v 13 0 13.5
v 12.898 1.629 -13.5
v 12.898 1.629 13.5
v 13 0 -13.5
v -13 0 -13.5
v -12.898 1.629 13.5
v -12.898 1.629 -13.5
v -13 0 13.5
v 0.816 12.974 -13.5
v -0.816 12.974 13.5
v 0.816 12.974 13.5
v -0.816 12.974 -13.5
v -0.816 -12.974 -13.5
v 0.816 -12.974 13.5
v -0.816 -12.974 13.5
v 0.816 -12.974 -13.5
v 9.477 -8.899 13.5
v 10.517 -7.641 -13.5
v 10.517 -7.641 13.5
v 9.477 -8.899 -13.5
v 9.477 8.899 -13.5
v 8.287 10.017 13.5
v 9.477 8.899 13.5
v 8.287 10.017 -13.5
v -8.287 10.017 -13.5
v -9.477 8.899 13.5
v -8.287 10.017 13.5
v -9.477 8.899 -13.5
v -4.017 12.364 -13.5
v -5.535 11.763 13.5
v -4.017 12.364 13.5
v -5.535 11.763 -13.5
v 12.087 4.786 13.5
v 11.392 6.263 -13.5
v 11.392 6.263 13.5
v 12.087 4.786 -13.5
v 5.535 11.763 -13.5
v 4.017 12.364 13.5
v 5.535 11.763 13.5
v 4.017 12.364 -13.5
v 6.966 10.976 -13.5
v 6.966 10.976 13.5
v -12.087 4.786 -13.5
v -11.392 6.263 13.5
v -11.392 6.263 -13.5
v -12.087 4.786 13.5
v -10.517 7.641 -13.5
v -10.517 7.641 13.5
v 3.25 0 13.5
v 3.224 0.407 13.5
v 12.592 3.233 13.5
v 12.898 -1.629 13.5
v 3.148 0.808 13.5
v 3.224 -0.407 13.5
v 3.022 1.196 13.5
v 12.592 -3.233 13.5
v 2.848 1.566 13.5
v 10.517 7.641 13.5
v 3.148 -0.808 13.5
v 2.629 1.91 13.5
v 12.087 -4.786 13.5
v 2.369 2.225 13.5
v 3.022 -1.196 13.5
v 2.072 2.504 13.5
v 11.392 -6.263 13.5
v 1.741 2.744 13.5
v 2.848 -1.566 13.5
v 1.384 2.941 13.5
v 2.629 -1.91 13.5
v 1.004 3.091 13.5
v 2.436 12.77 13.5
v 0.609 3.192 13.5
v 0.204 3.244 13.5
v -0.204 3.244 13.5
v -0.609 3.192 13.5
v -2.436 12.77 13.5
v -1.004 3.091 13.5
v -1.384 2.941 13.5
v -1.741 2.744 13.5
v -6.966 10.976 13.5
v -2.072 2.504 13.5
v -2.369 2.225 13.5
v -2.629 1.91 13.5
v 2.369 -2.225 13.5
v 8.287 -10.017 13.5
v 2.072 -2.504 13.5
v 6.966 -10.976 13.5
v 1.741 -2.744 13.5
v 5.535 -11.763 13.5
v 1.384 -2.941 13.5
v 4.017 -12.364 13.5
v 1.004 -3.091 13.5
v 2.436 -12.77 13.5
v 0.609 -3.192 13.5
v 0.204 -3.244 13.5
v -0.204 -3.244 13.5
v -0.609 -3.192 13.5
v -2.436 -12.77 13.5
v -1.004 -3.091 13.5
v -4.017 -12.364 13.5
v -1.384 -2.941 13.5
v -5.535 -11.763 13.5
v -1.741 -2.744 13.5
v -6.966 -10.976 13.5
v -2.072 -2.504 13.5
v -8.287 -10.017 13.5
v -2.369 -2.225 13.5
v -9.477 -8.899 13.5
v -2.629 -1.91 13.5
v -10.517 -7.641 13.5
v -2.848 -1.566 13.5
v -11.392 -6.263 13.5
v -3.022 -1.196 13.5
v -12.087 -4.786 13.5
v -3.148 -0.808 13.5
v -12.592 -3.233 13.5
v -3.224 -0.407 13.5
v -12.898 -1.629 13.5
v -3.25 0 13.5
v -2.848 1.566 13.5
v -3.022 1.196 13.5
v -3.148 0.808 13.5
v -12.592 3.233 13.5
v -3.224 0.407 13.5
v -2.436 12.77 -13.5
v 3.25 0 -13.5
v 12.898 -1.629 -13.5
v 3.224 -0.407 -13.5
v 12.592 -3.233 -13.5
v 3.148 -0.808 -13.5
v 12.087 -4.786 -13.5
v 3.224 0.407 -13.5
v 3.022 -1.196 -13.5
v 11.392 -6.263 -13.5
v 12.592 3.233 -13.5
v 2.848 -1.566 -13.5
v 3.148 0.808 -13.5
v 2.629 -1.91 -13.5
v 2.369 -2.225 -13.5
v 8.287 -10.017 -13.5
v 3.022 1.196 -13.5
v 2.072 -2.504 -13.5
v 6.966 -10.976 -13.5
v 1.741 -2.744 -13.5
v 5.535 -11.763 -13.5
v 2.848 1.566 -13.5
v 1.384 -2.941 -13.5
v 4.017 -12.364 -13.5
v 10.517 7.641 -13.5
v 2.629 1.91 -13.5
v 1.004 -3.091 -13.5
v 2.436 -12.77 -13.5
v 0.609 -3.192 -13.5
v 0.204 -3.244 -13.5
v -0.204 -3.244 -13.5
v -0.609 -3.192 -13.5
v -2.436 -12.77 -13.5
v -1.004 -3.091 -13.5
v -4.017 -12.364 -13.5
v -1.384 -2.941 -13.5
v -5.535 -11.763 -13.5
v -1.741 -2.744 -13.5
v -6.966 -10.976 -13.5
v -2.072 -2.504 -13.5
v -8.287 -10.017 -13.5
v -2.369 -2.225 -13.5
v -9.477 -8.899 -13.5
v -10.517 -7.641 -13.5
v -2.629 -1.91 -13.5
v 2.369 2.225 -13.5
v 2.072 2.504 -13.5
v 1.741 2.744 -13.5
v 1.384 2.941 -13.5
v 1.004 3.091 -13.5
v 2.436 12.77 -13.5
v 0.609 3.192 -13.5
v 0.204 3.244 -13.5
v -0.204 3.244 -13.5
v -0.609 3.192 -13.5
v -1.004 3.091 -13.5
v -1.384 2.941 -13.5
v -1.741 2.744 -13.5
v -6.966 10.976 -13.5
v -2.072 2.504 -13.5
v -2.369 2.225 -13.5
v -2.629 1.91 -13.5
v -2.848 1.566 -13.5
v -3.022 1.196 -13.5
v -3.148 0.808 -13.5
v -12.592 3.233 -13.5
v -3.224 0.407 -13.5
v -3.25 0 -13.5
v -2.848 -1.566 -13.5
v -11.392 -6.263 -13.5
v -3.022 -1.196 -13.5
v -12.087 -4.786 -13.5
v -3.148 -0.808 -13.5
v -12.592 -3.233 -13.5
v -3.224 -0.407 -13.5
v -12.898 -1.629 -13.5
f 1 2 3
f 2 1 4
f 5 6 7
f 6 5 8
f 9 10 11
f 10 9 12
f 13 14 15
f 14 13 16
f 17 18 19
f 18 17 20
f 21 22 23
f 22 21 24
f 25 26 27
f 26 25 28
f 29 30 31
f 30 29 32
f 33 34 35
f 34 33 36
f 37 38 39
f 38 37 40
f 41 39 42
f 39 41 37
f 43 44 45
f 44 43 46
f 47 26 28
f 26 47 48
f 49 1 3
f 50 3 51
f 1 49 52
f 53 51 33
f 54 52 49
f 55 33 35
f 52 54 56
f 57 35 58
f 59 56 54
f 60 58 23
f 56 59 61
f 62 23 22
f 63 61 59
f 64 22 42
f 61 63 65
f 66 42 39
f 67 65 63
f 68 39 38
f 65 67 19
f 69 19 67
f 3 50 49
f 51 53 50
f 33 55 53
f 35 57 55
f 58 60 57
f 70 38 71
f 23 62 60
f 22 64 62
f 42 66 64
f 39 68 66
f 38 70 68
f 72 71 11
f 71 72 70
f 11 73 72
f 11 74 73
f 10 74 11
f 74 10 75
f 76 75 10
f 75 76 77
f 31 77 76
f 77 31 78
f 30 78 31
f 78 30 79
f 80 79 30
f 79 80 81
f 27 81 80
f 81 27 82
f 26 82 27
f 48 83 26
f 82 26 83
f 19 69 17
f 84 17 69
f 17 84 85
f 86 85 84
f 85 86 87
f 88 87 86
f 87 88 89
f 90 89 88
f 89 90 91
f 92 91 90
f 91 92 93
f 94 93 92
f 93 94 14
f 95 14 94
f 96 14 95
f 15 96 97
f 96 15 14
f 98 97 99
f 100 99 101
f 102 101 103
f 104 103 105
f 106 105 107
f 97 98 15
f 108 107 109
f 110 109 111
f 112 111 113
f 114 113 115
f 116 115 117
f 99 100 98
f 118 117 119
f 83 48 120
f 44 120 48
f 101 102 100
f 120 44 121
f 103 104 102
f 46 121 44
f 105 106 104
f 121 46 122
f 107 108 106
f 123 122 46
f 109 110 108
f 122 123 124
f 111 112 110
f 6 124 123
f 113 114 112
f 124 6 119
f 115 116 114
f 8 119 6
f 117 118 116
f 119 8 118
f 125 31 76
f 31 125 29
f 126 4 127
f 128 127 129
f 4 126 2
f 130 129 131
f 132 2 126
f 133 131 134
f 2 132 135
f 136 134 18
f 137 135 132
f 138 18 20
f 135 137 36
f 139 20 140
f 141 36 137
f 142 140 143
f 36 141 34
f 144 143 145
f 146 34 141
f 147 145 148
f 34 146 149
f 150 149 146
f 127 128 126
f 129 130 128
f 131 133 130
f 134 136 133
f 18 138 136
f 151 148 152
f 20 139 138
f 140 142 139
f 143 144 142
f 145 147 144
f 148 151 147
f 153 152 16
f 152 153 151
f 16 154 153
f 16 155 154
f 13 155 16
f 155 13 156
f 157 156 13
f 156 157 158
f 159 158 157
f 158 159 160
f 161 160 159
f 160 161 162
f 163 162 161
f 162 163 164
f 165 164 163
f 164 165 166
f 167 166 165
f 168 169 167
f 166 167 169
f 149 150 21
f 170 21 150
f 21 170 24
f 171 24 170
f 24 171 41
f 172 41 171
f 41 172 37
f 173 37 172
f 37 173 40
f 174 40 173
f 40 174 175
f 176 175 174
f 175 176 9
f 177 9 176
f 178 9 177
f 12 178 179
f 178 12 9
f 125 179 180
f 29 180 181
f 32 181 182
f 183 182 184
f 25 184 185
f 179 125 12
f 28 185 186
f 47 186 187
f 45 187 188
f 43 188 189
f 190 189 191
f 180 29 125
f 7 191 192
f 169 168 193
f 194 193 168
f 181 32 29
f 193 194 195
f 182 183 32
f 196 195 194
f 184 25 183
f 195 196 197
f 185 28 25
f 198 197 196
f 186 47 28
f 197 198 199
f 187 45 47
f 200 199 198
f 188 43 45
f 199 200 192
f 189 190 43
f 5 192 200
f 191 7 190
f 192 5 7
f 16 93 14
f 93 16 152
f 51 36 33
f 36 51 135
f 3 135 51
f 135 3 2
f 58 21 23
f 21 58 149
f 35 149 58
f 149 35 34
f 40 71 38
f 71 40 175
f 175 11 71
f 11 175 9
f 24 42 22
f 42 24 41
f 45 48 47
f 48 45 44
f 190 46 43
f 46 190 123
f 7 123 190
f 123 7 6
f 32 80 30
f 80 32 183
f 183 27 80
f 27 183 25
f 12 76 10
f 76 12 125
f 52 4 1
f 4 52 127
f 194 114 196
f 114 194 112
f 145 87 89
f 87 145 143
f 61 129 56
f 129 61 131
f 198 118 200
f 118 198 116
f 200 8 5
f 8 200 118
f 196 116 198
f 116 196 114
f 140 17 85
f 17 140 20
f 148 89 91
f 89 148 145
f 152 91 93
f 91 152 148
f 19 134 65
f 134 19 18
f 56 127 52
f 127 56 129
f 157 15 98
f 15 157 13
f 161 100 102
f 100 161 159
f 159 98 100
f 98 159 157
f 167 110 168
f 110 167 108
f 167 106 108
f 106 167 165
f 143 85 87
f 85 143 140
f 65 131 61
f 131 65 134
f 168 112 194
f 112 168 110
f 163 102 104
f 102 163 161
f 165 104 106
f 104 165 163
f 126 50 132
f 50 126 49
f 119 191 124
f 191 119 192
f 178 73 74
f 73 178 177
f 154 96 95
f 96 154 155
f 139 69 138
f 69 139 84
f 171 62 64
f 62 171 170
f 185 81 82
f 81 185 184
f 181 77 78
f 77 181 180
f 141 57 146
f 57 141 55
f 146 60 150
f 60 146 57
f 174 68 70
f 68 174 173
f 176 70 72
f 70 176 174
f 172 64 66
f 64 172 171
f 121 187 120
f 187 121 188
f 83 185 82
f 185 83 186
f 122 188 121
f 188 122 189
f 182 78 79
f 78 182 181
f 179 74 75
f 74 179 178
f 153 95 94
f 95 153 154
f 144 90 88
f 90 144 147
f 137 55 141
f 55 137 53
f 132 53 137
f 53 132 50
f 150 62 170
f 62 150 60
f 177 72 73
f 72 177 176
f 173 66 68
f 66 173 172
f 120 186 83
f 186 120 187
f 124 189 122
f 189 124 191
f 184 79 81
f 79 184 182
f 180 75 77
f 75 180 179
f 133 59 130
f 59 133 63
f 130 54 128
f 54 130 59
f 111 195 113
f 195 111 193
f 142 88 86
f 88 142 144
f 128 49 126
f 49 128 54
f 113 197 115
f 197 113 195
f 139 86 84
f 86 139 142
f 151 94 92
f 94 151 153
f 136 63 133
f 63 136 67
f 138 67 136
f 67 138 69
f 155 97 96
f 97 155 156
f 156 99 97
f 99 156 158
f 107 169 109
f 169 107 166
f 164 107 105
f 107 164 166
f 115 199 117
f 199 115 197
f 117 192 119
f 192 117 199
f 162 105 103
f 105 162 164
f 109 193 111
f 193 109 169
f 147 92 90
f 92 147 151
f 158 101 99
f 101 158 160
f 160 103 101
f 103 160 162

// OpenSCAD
$fn = 50;


difference() {
	union() {
		translate(v = [0, 0, -13.5000000000]) {
			cylinder(h = 27, r = 13.0000000000);
		}
	}
	union() {
		translate(v = [0, 0, -100.0000000000]) {
			cylinder(h = 200, r = 3.2500000000);
		}
	}
}
